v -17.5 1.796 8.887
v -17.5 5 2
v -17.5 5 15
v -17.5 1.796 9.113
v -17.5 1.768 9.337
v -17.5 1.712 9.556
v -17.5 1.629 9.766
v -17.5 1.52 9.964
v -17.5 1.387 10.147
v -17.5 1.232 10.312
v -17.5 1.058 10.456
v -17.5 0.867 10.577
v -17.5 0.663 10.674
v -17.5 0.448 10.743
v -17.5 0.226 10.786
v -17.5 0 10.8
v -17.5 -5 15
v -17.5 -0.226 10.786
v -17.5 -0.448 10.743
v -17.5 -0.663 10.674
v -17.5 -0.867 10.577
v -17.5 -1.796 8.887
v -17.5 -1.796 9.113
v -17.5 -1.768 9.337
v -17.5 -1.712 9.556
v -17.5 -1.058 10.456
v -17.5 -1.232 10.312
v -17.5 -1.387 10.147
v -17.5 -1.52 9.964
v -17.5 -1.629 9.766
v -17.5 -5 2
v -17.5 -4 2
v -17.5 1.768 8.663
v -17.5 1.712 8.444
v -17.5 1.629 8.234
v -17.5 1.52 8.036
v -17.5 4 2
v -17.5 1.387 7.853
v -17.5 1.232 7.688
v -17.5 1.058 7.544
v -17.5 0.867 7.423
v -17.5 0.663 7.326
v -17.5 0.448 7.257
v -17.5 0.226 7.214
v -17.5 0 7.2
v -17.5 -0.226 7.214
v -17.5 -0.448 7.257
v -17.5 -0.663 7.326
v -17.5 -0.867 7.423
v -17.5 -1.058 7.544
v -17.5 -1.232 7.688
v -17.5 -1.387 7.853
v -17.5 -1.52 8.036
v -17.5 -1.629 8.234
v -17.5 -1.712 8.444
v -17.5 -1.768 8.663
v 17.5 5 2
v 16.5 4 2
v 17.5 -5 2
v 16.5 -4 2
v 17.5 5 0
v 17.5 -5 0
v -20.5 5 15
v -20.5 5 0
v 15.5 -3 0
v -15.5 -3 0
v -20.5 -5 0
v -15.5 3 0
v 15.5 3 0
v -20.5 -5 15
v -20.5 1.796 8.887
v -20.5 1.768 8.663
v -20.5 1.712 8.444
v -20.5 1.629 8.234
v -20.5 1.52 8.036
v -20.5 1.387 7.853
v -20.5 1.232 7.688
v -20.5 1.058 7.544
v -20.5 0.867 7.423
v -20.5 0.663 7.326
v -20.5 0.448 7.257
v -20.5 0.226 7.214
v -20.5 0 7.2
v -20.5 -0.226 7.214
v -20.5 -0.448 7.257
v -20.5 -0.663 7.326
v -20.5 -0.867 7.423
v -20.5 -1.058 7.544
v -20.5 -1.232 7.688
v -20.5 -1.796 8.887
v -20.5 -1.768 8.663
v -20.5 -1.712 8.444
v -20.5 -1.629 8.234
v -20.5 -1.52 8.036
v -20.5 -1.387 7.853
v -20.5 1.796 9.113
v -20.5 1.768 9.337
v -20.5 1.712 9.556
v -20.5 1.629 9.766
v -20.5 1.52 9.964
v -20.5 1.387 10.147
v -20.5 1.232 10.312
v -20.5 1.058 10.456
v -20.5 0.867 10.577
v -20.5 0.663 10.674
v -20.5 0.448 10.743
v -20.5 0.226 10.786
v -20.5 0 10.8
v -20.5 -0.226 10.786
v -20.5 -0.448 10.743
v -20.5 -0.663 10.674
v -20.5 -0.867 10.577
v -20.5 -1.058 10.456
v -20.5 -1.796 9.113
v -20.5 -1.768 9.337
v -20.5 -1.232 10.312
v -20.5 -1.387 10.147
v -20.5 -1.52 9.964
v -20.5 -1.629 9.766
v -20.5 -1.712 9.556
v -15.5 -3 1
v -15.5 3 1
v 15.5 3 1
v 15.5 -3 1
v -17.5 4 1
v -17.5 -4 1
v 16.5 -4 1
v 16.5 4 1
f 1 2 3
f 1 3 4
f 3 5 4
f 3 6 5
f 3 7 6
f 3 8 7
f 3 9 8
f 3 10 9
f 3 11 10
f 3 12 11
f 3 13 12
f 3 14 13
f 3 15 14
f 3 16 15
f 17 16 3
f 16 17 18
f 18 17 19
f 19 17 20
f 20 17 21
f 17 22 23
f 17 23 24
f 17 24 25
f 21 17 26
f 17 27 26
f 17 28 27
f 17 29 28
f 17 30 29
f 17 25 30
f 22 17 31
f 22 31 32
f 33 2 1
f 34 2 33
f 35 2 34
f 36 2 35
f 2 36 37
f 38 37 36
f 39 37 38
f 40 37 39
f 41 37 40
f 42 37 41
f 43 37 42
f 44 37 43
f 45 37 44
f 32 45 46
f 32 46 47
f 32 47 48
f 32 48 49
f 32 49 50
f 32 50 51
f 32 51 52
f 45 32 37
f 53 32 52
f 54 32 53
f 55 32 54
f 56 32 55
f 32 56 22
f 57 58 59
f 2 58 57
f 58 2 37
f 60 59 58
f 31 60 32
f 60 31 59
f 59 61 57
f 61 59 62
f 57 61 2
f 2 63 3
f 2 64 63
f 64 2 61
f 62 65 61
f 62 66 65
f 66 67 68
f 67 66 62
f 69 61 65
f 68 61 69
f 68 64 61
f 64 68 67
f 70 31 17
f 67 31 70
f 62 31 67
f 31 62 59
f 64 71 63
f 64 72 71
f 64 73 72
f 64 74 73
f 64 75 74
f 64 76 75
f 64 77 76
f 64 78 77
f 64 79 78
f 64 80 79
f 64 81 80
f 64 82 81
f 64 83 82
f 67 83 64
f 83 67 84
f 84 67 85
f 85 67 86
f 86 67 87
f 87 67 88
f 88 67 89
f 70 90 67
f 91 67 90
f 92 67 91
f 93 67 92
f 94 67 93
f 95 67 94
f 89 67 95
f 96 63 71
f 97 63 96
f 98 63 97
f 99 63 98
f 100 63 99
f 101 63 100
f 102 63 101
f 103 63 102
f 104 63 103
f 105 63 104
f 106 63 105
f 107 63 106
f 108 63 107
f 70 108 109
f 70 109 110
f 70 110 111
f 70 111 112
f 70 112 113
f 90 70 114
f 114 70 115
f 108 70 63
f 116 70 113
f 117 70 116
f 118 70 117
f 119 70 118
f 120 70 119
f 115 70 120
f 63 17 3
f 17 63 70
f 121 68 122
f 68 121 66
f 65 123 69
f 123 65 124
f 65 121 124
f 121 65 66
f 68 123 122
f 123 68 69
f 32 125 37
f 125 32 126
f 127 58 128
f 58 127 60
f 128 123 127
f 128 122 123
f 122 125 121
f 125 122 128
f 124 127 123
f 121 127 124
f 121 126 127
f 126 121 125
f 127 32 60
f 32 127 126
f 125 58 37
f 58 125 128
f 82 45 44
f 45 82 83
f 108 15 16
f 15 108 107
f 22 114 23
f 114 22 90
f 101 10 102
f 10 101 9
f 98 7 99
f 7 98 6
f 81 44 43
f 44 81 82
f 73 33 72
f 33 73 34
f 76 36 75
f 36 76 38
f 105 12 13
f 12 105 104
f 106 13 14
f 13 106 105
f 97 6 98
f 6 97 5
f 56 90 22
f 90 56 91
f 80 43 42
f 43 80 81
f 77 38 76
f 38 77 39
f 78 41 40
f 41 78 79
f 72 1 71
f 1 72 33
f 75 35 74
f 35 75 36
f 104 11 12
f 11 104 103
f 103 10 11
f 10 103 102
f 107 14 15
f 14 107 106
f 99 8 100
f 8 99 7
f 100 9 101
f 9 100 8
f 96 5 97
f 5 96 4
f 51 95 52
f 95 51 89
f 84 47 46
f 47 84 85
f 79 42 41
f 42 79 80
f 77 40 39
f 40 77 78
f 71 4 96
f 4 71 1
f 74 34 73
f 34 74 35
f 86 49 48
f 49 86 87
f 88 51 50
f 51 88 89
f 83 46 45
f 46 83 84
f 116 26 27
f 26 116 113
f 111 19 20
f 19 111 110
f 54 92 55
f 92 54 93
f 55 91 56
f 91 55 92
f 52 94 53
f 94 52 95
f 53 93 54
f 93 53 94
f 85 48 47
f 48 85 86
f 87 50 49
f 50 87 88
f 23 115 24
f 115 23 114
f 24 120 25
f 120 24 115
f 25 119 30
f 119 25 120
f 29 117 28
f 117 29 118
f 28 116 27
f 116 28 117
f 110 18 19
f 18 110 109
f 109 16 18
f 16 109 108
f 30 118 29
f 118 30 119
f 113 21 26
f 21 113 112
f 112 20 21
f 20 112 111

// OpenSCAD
$fn = 50;


difference() {
	union() {
		translate(v = [-17.5000000000, -5.0000000000, 0]) {
			rotate(a = [0, 0, 0]) {
				cube(size = [35, 10, 2]);
			}
		}
		translate(v = [-20.5000000000, -5.0000000000, 0]) {
			rotate(a = [0, 0, 0]) {
				cube(size = [3, 10, 15]);
			}
		}
	}
	union() {
		translate(v = [-15.5000000000, -3.0000000000, 0]) {
			rotate(a = [0, 0, 0]) {
				cube(size = [31, 6, 2]);
			}
		}
		translate(v = [-17.5000000000, -4.0000000000, 1]) {
			rotate(a = [0, 0, 0]) {
				cube(size = [34, 8, 1]);
			}
		}
		#translate(v = [-27.5000000000, 0, 9]) {
			rotate(a = [0, 90, 0]) {
				cylinder(h = 20, r = 1.8000000000);
			}
		}
	}
}
